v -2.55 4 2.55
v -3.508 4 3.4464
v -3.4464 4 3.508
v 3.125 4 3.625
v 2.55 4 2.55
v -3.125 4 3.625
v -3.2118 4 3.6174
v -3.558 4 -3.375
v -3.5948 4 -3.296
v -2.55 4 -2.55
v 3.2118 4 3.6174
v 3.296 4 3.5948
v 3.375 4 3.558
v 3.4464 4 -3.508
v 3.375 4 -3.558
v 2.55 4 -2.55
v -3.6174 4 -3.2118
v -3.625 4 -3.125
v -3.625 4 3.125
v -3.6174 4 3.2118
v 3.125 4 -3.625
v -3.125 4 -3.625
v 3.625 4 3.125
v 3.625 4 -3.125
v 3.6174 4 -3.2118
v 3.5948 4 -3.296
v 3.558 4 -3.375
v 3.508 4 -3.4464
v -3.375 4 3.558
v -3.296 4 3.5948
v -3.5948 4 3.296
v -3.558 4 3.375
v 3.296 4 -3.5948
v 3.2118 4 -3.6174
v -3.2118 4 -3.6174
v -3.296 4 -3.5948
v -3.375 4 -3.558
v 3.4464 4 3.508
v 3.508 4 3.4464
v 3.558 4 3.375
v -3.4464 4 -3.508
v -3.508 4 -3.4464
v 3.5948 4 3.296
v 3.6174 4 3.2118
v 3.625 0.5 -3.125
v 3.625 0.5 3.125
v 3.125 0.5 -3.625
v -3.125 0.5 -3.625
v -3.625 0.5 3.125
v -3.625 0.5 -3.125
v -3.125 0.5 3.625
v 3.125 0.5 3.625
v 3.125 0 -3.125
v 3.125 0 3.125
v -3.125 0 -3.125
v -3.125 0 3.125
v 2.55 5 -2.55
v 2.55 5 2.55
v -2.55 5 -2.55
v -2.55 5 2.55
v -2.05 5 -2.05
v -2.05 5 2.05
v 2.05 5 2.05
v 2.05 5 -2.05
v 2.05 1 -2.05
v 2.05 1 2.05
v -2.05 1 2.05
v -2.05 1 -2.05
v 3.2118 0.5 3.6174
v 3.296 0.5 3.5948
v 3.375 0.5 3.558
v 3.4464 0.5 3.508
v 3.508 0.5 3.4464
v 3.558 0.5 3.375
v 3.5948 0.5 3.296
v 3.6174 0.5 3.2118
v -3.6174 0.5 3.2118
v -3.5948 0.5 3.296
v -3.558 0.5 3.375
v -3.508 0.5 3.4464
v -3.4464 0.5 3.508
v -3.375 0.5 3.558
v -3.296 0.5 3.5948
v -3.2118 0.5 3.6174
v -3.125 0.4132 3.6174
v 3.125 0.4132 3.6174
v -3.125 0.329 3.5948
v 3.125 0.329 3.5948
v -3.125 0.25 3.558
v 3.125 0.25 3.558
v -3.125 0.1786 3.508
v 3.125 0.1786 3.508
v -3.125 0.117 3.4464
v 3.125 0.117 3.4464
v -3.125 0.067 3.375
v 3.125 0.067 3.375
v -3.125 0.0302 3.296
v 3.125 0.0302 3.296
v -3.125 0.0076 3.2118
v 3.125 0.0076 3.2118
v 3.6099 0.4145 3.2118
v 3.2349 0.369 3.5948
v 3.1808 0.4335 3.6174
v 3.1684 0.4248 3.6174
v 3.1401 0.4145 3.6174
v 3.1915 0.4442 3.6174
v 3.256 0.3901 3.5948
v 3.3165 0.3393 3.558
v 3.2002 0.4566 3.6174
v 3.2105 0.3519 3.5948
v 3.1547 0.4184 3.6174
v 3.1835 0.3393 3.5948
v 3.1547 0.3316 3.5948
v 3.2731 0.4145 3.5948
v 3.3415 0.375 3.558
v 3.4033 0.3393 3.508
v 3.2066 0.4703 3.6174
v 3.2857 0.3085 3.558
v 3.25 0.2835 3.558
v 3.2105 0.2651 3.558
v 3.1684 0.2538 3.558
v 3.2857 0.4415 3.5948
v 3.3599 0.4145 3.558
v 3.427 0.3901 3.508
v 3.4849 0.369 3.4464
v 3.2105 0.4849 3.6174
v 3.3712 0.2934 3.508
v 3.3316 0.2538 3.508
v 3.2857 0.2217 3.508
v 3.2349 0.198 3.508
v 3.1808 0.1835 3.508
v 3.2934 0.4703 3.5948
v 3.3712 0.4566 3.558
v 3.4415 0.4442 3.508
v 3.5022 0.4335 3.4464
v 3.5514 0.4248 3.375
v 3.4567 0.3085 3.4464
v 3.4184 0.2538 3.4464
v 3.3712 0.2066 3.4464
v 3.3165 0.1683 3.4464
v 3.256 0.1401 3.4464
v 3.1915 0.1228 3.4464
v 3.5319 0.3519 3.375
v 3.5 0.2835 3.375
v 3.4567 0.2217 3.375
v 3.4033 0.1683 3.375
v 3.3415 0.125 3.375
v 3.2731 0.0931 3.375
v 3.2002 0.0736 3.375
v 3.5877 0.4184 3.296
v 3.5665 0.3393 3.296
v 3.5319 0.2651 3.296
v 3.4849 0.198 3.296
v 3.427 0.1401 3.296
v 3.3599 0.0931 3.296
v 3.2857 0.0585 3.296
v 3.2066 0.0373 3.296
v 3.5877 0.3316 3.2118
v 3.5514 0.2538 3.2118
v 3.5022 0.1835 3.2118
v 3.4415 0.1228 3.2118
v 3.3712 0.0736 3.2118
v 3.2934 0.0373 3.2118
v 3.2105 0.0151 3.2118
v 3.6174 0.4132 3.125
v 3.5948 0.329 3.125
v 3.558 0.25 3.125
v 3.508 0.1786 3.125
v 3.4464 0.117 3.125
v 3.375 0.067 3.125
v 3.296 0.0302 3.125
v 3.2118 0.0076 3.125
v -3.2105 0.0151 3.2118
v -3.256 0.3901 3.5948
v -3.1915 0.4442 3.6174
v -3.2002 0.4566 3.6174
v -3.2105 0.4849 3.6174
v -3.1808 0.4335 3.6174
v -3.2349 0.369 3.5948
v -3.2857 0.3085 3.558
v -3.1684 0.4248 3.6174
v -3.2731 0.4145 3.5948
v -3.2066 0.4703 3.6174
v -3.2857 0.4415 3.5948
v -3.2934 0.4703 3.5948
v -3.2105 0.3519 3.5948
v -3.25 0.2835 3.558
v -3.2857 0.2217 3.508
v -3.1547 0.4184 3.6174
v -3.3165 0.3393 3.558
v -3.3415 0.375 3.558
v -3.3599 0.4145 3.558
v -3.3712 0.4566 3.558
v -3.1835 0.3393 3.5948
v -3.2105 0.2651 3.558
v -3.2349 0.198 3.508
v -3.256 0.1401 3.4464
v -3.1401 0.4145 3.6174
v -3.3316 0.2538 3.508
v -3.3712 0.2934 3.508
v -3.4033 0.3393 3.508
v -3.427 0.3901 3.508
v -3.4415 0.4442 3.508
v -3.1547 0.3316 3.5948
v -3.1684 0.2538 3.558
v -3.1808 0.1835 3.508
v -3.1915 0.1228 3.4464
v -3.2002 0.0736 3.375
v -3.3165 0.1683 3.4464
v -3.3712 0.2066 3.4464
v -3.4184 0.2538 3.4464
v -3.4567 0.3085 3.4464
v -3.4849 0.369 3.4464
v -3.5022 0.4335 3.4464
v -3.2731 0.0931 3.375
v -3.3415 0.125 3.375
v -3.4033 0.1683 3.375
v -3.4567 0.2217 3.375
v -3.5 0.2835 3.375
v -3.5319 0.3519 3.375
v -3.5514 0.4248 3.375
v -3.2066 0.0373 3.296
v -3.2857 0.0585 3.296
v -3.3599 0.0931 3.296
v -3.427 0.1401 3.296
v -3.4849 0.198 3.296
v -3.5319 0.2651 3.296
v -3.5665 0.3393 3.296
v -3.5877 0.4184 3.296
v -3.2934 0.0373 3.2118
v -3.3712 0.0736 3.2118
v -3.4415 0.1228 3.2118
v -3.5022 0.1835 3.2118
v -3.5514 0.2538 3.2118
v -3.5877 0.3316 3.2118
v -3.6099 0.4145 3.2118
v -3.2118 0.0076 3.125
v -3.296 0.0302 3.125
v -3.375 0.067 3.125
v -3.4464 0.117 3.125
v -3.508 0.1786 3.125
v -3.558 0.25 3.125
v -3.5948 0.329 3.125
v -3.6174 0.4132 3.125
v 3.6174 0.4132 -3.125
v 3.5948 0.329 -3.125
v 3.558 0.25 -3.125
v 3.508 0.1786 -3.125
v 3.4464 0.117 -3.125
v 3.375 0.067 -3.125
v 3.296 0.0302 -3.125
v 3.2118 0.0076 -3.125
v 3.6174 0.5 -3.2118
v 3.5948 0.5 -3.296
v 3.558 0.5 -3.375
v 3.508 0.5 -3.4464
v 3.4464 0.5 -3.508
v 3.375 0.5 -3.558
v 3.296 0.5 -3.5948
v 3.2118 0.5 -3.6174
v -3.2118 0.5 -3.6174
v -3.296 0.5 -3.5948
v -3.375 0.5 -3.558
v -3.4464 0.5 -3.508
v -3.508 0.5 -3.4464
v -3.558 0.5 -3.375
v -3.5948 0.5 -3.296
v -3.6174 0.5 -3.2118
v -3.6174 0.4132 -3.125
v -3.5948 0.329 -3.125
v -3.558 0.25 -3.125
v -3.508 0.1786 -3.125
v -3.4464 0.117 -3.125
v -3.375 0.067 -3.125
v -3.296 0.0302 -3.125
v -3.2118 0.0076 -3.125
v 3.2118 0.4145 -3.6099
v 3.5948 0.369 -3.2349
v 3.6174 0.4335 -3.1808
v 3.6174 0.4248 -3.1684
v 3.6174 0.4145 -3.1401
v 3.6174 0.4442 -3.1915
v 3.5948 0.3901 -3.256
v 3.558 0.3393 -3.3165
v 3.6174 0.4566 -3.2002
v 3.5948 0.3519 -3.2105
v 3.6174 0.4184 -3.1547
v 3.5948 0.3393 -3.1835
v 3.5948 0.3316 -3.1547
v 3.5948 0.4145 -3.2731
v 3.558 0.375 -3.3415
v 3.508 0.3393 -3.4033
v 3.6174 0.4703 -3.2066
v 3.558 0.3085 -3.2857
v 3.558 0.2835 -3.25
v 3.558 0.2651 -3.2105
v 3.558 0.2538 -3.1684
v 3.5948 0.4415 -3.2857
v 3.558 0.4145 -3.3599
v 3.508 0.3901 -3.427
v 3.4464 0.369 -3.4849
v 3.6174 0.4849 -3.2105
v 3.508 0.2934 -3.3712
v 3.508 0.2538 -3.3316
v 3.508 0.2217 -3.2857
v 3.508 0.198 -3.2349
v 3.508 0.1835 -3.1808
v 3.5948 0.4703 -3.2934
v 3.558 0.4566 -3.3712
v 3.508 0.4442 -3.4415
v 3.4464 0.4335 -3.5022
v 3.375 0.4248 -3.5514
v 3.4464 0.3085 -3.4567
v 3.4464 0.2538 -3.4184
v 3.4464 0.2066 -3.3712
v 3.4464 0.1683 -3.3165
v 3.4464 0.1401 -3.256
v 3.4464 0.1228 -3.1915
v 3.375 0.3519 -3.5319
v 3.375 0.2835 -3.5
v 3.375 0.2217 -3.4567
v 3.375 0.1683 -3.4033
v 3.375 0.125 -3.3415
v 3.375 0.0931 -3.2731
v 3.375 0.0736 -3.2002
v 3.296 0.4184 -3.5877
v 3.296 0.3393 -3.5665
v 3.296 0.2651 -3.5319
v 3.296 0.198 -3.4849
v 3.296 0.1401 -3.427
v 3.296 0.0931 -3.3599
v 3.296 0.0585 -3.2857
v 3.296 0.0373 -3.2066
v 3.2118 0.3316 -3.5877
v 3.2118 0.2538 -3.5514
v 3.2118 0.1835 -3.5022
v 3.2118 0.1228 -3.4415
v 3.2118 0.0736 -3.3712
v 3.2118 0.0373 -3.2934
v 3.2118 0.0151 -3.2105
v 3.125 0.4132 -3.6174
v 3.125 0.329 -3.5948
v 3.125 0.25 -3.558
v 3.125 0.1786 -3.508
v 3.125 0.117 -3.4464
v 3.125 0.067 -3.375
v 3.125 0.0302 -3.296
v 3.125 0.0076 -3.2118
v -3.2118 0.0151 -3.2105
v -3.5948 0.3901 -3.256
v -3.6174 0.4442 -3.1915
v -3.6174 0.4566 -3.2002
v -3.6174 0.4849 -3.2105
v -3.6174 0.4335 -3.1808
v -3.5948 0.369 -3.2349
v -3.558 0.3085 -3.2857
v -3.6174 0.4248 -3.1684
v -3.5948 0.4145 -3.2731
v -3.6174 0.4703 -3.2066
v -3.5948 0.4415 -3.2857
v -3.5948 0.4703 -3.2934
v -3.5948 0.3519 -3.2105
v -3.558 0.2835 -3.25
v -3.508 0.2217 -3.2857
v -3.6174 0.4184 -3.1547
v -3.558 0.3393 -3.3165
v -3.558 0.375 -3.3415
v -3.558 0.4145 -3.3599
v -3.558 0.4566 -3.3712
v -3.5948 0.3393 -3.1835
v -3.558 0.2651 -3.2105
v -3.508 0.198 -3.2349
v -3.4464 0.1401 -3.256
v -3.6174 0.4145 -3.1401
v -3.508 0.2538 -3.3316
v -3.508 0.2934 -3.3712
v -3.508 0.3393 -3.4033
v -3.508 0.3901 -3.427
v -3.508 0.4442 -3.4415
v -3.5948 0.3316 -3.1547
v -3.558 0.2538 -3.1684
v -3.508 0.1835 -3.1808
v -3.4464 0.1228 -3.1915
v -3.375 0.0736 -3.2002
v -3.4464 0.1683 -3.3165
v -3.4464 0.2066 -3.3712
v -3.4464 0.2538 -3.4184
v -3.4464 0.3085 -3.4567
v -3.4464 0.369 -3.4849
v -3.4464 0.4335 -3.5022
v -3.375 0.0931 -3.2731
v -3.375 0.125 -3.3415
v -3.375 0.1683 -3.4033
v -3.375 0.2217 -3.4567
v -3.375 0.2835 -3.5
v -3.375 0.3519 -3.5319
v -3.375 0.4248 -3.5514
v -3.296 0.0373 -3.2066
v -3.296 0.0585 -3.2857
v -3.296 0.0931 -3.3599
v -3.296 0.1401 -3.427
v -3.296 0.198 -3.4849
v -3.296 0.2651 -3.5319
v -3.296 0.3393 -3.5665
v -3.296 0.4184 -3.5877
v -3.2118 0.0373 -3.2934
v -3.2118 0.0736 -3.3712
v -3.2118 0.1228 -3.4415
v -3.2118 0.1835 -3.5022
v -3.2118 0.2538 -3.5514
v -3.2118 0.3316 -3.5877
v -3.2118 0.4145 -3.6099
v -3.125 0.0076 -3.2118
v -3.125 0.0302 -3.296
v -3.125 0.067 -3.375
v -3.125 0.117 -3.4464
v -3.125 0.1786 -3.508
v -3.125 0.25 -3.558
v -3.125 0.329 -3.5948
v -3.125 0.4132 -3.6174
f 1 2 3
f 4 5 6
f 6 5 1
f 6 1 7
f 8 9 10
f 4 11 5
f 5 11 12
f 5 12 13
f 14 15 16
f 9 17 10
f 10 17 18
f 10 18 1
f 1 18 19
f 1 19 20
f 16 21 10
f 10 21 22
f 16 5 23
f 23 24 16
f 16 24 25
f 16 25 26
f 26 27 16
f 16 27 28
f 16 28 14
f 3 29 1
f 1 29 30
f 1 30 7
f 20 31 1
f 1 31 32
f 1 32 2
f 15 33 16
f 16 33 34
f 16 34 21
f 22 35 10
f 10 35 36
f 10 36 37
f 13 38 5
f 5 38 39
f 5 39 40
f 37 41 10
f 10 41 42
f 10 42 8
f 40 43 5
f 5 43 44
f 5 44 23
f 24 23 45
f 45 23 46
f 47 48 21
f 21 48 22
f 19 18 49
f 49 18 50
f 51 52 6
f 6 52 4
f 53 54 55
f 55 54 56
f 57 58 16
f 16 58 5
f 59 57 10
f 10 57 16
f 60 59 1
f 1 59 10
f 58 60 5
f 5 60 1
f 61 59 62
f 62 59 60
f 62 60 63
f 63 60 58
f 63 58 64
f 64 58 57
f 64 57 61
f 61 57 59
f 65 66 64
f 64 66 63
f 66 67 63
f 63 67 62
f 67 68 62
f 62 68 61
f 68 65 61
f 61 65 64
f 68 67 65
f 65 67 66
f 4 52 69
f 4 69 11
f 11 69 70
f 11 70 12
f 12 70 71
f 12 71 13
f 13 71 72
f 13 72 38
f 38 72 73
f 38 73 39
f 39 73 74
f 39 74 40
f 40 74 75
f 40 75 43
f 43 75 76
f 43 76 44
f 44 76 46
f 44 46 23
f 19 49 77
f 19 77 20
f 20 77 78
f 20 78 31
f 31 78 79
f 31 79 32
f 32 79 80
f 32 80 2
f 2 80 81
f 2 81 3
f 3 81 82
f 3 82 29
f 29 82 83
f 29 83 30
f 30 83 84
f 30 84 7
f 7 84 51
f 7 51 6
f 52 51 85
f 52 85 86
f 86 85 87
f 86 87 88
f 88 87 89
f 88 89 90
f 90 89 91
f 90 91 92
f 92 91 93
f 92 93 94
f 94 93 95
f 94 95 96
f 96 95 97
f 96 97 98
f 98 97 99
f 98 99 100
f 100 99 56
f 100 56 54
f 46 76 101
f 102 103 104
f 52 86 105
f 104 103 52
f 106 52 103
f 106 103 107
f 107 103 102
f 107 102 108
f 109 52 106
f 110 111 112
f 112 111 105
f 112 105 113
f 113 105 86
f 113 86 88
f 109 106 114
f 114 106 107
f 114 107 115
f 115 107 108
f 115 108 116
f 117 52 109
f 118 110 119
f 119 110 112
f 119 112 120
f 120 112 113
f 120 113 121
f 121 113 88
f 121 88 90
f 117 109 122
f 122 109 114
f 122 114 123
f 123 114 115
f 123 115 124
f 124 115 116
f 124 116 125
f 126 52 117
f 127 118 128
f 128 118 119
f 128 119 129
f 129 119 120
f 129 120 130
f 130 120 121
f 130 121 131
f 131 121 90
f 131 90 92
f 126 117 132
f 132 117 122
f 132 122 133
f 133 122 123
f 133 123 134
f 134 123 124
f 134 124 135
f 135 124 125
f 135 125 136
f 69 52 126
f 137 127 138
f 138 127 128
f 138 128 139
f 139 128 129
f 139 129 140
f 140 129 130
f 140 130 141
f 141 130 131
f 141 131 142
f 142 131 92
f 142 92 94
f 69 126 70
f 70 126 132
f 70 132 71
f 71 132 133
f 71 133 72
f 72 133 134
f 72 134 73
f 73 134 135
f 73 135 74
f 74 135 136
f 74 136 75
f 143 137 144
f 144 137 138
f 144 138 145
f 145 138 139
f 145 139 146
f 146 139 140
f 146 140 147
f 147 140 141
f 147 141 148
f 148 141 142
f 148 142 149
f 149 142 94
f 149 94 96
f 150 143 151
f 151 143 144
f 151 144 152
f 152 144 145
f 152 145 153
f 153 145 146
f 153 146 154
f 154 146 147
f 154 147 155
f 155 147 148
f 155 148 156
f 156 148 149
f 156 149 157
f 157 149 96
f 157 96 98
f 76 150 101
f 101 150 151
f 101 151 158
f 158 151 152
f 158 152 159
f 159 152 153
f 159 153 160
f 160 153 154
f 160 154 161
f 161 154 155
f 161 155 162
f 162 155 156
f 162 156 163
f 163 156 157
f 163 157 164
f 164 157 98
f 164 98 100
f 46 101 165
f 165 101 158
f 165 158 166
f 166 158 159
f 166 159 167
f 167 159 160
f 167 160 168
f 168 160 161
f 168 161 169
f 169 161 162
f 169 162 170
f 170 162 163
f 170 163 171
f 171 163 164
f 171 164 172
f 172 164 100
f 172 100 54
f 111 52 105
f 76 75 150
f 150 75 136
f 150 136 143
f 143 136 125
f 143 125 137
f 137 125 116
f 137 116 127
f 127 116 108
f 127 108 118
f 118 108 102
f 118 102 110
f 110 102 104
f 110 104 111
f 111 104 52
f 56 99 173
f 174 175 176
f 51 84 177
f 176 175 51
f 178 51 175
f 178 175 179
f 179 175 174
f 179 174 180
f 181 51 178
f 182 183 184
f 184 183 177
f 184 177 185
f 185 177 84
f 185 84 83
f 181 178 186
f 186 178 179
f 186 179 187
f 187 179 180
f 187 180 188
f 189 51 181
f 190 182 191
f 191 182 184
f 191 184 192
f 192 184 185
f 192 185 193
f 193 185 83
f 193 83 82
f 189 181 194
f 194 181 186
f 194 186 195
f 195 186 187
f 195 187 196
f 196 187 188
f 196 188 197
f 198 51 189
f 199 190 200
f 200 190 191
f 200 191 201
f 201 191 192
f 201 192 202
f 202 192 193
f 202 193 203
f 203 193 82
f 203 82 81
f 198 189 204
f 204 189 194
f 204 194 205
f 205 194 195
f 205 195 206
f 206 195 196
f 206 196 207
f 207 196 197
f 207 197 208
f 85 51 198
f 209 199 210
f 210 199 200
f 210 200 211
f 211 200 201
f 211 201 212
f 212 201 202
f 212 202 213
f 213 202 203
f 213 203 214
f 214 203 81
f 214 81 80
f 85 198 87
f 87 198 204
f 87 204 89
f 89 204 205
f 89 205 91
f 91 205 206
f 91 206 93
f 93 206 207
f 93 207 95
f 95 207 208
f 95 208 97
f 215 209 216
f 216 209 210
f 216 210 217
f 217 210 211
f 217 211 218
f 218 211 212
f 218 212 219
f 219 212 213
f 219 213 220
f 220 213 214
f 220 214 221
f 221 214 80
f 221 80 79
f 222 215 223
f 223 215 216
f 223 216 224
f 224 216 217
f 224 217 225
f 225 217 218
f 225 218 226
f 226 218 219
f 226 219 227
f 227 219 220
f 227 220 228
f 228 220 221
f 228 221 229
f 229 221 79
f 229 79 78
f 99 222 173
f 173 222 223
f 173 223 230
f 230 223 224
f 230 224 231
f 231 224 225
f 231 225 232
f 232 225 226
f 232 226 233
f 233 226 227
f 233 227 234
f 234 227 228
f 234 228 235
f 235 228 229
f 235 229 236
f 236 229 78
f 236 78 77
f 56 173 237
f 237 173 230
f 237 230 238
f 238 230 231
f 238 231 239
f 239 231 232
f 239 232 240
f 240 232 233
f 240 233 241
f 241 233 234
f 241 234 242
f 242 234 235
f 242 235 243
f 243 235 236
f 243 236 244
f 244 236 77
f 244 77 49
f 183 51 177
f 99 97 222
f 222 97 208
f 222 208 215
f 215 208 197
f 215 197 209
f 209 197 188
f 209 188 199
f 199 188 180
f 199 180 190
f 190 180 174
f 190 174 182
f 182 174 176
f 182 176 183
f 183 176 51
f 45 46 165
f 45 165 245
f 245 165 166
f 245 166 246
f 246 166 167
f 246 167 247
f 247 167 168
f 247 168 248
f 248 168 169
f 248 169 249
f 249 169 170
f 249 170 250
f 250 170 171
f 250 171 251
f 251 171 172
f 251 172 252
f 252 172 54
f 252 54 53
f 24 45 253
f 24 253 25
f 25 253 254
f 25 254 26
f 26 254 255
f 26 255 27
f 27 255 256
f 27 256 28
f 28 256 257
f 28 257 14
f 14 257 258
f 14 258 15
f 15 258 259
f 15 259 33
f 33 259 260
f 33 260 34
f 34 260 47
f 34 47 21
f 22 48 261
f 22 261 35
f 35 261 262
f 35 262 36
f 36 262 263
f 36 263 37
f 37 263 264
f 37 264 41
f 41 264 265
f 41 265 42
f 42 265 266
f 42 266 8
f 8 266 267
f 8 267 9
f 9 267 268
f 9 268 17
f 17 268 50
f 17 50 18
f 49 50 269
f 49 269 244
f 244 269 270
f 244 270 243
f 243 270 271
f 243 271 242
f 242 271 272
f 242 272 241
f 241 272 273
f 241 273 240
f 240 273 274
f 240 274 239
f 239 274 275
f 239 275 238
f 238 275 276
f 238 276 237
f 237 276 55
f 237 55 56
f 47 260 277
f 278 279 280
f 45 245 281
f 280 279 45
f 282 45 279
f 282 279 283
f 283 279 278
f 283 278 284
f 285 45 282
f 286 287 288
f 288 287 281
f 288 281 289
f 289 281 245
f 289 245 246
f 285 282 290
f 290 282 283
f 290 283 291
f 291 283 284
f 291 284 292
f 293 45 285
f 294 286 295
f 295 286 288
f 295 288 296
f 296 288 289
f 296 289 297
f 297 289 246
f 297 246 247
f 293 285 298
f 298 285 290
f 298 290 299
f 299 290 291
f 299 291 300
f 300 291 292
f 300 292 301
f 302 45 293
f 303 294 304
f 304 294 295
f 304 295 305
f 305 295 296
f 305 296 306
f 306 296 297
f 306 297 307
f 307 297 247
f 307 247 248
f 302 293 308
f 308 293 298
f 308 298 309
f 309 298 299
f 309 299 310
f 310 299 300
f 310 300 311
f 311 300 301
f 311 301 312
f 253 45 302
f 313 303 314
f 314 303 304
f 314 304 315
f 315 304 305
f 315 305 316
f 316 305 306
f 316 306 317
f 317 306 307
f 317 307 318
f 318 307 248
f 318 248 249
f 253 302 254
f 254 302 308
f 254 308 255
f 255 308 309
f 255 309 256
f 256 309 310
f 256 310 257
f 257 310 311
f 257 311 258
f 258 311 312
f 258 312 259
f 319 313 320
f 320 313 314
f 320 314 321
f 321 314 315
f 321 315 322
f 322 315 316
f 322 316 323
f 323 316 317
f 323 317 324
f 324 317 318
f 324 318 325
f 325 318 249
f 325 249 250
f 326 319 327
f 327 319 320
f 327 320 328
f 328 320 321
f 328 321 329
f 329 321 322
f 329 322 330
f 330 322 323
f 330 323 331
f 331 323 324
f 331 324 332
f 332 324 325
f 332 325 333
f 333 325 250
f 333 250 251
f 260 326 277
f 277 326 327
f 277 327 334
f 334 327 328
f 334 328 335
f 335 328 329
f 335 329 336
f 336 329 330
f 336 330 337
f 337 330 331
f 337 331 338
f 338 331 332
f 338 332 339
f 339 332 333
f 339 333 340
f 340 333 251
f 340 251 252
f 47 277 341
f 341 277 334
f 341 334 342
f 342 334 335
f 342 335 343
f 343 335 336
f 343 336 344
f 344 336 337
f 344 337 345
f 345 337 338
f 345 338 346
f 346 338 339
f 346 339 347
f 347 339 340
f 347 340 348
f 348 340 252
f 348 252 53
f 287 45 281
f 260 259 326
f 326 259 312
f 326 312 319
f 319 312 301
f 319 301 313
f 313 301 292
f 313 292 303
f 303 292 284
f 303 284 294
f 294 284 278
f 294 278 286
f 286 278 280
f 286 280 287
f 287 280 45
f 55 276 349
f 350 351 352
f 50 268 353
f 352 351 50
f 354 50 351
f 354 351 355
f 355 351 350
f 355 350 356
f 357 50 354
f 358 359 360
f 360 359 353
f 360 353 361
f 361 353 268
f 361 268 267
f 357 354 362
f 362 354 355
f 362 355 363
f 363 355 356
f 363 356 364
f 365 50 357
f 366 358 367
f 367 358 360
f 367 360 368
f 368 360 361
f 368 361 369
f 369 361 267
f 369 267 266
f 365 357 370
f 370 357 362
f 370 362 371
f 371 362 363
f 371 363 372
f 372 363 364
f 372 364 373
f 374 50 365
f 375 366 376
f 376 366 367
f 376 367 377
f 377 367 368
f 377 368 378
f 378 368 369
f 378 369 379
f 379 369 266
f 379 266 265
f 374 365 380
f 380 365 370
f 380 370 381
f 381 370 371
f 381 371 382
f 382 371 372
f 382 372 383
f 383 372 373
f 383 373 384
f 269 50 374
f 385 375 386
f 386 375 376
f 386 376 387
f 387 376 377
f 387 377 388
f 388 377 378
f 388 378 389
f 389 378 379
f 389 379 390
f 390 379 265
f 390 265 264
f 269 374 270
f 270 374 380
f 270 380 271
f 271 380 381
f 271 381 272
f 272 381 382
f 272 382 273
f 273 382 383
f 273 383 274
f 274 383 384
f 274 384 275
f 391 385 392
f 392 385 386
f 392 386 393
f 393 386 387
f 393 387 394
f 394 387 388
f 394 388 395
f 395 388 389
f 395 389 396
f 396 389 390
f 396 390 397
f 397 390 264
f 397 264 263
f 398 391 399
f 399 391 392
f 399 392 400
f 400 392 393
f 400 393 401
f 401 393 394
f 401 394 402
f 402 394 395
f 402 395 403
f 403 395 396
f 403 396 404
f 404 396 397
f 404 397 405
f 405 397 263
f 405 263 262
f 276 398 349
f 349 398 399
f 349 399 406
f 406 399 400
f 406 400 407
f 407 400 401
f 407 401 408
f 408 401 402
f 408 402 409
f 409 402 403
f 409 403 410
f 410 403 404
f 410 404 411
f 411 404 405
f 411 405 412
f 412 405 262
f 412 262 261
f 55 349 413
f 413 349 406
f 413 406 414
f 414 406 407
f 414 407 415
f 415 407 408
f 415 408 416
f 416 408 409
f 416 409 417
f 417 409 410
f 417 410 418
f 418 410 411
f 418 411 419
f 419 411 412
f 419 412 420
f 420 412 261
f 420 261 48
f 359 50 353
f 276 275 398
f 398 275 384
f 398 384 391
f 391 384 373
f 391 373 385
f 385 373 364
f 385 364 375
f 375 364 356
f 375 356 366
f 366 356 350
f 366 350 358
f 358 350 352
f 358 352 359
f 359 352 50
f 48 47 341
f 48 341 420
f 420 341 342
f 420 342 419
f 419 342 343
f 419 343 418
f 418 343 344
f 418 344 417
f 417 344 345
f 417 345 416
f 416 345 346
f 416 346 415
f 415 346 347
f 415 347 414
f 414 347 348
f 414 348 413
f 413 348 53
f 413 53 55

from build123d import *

# Parameters (mm, degrees)
SKETCH1_W           = 7.25
SKETCH1_H           = 7.25
BOSS_EXTRUDE1_DEPTH = 4
SKETCH3_W           = 5.1
SKETCH3_H           = 5.1
BOSS_EXTRUDE2_DEPTH = 1
SKETCH4_W           = 4.1
SKETCH4_H           = 4.1
CUT_EXTRUDE2_DEPTH  = 4
FILLET1_R           = 0.5


with BuildPart() as part:
    # Sketch1 → Boss-Extrude1 (new body)
    with BuildSketch(Plane(origin=(0, 0, 0), x_dir=(1, 0, 0), z_dir=(0, 1, 0))):
        Rectangle(SKETCH1_W, SKETCH1_H)
    extrude(amount=BOSS_EXTRUDE1_DEPTH)

    # Sketch3 → Boss-Extrude2 (add)
    with BuildSketch(Plane(origin=(0, 4, 0), x_dir=(1, 0, 0), z_dir=(0, 1, 0))):
        Rectangle(SKETCH3_W, SKETCH3_H)
    extrude(amount=BOSS_EXTRUDE2_DEPTH)

    # Sketch4 → Cut-Extrude2 (cut)
    with BuildSketch(Plane(origin=(0, 5, 0), x_dir=(1, 0, 0), z_dir=(0, 1, 0))):
        Rectangle(SKETCH4_W, SKETCH4_H)
    extrude(amount=-CUT_EXTRUDE2_DEPTH, mode=Mode.SUBTRACT)

    # Fillet1
    fillet1_edges = [part.edges().sort_by_distance(p)[0] for p in [
        (0, 0, 3.625),
        (-3.625, 0, 0),
        (0, 0, -3.625),
        (3.625, 0, 0),
        (3.625, 2, 3.625),
        (-3.625, 2, 3.625),
        (-3.625, 2, -3.625),
        (3.625, 2, -3.625),
    ]]
    fillet(fillet1_edges, radius=FILLET1_R)


solid = part.part
